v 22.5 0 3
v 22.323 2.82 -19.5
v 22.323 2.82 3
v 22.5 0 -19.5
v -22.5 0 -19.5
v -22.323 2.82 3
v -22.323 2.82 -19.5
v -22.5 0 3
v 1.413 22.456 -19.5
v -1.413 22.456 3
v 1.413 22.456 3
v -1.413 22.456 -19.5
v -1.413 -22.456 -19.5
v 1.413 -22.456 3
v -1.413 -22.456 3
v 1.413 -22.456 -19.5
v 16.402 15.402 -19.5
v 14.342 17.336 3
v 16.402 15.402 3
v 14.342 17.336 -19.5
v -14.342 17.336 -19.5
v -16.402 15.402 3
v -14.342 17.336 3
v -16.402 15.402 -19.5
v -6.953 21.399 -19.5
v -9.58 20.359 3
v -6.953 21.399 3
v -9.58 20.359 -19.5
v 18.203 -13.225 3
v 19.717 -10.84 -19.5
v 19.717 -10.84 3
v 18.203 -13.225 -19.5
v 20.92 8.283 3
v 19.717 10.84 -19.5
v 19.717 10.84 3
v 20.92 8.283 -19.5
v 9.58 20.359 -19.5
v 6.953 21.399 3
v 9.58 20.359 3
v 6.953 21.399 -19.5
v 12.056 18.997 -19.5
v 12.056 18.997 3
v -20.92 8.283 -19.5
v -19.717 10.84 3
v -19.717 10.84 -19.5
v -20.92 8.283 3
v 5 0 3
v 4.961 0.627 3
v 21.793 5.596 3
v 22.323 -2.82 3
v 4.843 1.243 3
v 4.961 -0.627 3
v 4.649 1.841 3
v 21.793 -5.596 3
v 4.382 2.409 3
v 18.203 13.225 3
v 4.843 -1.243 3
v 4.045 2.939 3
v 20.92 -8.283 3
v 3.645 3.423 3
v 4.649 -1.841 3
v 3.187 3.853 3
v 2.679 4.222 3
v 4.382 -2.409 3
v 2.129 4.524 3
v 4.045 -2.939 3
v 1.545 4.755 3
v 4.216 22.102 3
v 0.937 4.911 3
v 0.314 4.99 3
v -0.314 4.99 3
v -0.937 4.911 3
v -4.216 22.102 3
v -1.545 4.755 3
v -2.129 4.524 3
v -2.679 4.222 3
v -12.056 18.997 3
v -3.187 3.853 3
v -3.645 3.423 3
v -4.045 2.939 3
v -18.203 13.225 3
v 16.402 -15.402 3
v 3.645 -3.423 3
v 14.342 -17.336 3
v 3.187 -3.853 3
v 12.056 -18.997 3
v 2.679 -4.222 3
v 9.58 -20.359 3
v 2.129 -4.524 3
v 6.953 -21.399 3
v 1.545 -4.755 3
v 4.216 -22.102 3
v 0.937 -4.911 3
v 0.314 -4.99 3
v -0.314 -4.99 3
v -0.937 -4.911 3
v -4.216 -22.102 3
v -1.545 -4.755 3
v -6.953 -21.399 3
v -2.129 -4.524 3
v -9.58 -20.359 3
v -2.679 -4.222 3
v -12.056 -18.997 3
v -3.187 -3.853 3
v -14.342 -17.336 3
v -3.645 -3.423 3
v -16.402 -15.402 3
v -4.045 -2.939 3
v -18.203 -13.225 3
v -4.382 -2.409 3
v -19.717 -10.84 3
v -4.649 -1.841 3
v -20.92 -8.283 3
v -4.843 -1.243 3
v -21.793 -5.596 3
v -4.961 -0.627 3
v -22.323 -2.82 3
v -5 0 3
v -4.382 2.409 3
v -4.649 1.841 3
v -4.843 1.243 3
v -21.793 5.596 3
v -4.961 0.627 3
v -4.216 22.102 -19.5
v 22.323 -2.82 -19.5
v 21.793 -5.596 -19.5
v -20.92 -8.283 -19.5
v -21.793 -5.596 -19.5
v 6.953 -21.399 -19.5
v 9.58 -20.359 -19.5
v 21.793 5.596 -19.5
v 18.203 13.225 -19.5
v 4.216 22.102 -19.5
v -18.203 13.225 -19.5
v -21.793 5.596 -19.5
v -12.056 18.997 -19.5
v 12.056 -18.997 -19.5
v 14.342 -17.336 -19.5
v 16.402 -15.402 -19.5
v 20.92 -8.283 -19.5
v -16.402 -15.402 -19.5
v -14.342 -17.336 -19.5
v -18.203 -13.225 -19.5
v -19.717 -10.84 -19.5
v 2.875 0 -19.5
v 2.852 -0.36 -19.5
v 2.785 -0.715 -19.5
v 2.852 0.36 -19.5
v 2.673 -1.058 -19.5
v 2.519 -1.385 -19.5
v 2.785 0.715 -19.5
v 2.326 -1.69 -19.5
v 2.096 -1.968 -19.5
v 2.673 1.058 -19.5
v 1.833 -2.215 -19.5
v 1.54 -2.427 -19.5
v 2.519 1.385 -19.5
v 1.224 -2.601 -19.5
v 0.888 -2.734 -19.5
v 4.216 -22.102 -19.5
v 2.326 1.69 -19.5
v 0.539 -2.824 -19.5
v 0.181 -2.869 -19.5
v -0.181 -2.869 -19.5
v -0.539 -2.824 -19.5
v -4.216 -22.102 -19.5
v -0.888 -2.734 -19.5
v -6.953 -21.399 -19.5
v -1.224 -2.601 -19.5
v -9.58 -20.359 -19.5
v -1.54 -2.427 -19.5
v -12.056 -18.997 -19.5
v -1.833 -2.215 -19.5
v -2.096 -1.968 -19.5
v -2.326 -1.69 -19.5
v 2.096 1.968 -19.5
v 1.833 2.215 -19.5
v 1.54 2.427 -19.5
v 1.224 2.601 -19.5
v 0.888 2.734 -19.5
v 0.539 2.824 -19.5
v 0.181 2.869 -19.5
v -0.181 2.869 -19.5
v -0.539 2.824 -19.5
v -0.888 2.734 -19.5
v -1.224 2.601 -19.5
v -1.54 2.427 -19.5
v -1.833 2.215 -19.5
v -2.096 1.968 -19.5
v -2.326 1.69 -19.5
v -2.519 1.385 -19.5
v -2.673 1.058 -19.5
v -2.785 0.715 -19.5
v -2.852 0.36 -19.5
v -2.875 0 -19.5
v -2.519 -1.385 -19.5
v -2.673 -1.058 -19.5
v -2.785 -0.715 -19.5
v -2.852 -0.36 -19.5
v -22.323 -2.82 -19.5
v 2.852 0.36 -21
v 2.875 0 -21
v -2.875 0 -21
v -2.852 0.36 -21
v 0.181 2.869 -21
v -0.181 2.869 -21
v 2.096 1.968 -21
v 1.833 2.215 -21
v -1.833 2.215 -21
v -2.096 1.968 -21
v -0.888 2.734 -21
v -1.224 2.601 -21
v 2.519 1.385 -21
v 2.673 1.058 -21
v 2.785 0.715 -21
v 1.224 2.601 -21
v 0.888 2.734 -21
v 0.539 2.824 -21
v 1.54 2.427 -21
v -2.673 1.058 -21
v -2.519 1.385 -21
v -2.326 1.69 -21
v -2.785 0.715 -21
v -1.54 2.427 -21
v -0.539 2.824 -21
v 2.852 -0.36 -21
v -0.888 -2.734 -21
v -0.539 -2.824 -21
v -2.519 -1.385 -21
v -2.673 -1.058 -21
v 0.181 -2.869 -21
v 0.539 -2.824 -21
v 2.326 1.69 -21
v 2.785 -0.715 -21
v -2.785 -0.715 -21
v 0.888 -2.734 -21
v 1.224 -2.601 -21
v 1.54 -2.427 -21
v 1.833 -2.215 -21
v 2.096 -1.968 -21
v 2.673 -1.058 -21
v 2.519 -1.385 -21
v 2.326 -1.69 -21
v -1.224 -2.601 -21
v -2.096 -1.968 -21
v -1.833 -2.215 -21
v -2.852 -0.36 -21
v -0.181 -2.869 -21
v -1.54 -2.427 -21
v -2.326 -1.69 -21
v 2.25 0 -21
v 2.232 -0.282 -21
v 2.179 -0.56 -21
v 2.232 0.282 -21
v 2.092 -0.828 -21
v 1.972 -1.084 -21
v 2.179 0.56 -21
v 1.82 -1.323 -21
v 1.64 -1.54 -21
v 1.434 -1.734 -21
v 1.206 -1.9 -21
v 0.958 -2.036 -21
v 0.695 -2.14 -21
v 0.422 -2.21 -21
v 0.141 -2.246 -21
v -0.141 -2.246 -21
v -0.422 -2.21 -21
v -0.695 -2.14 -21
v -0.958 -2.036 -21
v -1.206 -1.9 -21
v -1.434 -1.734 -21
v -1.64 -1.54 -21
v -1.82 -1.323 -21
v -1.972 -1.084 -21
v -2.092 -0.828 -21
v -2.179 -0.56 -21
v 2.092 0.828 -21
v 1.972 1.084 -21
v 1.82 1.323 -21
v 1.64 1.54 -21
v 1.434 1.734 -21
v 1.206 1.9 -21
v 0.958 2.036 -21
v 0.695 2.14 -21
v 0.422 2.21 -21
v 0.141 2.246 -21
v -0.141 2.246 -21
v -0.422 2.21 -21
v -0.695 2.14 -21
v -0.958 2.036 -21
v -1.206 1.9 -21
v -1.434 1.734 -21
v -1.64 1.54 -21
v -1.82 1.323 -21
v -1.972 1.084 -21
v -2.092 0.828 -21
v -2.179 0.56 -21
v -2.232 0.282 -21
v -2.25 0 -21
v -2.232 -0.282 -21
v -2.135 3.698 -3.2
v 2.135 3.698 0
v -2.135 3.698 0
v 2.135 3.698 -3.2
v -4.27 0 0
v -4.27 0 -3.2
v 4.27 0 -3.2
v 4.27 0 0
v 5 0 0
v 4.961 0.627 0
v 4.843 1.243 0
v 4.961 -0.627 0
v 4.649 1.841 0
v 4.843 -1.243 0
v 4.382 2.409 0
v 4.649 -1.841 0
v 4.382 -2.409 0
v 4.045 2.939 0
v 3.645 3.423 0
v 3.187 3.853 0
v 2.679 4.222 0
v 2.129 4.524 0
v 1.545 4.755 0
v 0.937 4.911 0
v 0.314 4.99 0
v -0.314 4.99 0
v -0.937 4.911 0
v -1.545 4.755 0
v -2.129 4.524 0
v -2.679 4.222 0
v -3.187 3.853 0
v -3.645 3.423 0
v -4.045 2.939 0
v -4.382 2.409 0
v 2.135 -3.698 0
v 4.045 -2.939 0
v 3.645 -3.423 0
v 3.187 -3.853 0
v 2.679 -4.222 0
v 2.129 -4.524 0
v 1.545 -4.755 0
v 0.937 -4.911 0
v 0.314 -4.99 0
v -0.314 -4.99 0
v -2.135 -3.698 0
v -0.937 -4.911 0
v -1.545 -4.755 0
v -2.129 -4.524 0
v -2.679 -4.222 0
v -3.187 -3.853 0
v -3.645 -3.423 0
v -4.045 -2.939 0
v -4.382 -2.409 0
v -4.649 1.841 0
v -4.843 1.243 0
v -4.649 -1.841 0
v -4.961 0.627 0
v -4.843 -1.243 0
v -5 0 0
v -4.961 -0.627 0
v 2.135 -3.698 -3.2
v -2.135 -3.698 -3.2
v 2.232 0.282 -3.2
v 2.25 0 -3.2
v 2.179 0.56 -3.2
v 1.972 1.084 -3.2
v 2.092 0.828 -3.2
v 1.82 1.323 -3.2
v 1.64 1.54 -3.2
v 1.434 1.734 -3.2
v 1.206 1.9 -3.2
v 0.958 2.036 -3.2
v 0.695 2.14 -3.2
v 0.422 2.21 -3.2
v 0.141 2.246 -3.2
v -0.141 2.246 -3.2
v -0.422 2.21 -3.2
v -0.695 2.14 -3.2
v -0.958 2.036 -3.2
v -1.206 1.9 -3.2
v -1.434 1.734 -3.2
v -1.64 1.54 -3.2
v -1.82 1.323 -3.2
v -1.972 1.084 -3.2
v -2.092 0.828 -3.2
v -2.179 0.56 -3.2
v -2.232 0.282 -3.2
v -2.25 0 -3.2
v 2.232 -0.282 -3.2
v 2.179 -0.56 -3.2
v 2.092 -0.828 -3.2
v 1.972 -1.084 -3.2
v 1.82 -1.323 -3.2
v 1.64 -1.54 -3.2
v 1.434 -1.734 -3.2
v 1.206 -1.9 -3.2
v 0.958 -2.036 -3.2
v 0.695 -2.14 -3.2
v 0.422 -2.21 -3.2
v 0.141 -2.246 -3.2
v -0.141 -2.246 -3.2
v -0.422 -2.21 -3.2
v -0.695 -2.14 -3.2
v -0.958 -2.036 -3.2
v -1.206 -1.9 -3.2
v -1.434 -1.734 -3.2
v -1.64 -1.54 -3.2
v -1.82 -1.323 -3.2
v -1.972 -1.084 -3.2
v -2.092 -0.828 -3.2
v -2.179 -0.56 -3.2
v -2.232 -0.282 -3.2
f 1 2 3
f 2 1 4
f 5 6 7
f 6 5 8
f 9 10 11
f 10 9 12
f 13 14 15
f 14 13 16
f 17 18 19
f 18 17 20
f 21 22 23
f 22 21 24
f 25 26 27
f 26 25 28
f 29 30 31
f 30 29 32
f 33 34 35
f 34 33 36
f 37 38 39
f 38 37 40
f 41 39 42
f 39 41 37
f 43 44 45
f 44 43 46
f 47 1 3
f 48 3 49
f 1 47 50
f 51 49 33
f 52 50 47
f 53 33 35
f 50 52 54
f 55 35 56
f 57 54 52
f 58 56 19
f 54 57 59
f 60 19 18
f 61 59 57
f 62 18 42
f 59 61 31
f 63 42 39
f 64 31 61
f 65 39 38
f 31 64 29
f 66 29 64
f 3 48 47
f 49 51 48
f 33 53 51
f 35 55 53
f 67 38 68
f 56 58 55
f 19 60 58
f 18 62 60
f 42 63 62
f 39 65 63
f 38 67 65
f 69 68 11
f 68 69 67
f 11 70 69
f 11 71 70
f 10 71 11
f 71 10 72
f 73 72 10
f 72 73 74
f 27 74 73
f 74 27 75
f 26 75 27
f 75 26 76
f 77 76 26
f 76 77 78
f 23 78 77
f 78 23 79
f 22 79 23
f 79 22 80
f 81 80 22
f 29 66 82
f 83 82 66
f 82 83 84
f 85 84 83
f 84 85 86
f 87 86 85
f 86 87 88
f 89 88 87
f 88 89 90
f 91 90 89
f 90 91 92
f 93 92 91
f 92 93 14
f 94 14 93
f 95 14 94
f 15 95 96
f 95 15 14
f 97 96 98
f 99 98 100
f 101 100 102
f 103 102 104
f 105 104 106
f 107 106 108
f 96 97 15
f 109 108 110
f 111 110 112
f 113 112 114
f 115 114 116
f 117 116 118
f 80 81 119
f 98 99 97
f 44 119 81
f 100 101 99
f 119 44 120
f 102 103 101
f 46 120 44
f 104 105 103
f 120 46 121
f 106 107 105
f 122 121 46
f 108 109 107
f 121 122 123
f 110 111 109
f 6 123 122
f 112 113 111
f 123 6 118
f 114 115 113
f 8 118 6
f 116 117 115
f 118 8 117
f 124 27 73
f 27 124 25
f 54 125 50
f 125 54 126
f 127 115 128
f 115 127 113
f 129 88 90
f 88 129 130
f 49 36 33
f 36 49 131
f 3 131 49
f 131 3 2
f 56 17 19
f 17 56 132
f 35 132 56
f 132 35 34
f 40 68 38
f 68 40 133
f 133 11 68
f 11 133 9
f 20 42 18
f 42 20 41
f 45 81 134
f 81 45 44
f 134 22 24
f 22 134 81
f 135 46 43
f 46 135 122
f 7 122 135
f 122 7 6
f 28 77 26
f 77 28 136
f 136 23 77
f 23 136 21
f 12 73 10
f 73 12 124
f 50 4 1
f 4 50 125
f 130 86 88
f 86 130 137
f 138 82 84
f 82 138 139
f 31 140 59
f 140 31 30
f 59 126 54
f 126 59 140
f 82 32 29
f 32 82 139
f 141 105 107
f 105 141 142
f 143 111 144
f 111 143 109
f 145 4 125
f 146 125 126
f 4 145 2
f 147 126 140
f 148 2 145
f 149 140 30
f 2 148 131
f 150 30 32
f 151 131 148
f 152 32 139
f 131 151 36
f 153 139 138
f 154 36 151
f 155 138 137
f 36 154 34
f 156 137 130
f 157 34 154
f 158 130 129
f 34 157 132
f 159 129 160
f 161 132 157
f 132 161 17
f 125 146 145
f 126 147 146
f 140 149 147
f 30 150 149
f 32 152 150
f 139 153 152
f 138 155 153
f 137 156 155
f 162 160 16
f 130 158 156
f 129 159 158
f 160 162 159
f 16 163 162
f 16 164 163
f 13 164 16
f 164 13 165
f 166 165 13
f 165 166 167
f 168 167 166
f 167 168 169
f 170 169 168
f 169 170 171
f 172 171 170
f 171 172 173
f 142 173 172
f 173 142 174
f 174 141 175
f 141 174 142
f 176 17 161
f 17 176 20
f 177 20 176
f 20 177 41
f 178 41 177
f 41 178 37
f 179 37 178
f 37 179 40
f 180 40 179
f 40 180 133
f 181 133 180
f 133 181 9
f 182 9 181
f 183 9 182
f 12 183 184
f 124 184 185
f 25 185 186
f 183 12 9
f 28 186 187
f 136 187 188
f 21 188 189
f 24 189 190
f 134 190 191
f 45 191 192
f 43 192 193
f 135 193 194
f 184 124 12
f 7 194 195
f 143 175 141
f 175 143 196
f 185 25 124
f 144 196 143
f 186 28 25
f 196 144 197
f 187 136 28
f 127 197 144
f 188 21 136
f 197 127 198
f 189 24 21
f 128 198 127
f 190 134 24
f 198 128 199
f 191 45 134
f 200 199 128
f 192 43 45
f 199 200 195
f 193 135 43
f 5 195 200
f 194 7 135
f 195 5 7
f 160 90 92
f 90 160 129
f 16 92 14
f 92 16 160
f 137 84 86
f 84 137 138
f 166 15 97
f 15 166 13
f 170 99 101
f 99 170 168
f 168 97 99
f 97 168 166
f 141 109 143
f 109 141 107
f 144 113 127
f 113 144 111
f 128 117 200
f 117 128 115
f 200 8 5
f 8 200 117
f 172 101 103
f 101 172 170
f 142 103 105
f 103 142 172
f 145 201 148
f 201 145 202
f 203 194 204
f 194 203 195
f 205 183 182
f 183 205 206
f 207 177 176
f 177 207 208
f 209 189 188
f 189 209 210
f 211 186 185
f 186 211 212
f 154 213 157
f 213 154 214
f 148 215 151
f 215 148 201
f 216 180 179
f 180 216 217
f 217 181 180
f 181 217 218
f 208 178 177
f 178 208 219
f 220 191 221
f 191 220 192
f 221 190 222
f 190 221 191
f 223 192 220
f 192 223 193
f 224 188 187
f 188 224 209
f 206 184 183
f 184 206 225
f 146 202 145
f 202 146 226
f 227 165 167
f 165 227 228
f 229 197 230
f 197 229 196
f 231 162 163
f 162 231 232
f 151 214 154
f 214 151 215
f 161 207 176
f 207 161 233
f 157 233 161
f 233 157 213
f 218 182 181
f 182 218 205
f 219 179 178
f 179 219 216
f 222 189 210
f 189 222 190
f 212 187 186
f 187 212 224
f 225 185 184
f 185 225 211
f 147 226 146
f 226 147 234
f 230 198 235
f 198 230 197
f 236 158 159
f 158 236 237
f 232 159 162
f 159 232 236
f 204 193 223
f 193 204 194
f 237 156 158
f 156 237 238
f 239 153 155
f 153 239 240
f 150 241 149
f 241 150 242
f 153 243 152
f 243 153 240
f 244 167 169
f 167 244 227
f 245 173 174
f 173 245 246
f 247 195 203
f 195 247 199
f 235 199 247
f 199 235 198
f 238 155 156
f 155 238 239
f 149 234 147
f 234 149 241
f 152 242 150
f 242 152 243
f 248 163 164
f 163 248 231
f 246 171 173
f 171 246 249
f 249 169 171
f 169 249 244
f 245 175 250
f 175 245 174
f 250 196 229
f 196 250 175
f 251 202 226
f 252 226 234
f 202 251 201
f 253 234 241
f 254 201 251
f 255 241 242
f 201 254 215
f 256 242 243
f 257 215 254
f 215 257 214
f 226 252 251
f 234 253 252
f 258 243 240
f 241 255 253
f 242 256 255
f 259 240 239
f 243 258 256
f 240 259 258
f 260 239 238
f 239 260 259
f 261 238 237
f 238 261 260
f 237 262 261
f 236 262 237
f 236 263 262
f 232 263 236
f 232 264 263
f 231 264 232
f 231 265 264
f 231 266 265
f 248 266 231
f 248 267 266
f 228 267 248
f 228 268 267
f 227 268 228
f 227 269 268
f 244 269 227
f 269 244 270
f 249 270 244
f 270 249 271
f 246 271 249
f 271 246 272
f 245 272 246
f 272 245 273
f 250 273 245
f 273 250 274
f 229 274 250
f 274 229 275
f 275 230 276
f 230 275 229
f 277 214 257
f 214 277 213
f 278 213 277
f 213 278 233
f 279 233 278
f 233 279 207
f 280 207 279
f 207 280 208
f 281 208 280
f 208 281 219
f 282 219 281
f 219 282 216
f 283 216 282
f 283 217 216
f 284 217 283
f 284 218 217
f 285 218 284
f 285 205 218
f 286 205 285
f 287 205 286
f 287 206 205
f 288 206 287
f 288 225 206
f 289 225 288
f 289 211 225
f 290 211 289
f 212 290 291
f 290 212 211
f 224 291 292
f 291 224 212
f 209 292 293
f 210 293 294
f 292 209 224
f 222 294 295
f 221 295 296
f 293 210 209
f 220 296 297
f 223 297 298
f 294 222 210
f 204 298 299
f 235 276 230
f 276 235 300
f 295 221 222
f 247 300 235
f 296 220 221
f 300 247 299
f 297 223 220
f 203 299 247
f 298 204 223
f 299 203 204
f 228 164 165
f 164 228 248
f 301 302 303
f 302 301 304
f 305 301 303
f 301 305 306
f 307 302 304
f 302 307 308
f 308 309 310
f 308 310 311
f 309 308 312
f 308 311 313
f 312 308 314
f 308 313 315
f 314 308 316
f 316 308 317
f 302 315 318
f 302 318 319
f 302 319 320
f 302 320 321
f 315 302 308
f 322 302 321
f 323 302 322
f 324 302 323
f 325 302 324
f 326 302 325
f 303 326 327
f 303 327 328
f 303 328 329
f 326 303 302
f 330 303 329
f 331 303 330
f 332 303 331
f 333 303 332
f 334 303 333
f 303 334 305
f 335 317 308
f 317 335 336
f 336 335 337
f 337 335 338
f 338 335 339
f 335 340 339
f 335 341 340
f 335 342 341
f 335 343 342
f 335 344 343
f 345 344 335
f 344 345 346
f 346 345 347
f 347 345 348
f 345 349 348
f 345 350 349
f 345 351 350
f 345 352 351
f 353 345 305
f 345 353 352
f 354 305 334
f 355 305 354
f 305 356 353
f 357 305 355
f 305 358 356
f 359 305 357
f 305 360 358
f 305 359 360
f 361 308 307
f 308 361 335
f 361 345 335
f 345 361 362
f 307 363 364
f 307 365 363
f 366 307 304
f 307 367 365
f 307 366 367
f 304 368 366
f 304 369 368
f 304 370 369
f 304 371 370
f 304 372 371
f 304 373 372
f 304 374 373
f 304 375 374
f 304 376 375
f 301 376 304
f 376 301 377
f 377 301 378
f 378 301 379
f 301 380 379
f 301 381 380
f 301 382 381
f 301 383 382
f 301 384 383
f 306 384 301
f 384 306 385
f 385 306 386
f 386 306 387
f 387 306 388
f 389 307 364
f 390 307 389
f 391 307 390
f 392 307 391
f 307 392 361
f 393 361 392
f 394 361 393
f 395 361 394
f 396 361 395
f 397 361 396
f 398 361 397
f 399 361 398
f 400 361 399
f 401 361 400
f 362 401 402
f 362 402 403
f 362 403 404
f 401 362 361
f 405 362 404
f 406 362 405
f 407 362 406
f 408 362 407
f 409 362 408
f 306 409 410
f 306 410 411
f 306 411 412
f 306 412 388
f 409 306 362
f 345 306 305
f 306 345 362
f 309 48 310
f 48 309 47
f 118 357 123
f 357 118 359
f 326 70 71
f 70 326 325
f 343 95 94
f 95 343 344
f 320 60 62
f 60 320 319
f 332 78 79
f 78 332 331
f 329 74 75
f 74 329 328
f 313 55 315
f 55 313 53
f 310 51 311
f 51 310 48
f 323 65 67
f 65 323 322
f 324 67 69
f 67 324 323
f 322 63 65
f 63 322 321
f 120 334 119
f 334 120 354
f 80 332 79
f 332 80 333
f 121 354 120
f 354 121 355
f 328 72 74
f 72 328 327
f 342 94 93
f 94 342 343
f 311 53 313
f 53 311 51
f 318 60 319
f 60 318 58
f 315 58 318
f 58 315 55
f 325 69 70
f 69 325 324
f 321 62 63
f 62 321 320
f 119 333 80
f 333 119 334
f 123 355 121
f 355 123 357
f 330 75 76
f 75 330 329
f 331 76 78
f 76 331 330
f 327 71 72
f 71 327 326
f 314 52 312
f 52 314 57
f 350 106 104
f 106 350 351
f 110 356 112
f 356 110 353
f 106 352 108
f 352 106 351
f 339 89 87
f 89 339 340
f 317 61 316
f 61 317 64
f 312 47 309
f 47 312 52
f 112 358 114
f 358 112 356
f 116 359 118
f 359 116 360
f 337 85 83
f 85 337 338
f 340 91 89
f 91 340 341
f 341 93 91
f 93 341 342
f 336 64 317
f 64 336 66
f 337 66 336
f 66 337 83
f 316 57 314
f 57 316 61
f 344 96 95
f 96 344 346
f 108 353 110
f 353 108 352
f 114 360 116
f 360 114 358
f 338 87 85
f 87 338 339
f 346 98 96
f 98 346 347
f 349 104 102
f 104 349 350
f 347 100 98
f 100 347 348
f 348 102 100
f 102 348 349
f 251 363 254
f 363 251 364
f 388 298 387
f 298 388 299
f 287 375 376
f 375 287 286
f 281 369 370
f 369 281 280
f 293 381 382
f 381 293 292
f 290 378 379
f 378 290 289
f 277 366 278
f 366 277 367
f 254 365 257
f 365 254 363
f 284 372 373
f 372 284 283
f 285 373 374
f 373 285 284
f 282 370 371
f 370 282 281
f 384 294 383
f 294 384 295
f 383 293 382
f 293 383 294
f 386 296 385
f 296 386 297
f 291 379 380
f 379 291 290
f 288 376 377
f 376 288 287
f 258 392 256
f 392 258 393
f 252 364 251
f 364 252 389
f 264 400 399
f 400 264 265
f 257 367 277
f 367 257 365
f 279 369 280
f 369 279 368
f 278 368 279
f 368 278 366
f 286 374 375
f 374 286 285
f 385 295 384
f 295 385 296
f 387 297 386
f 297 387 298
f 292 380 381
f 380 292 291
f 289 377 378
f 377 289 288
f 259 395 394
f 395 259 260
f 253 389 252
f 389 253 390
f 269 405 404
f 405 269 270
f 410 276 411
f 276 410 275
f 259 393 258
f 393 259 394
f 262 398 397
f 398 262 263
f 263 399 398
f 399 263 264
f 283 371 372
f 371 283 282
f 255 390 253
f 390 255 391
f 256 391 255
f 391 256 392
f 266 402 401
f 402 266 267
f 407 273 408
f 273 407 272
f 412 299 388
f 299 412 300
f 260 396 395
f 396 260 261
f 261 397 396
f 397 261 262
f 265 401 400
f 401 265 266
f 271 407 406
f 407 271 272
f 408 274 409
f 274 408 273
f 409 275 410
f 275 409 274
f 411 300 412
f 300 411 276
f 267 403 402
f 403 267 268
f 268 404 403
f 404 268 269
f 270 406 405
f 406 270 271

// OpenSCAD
$fn = 50;

difference() {
	union() {
		translate(v = [0, 0, -19.5]) {
			cylinder(h = 22.5, r = 22.5);
		}
		#translate(v = [0, 0, -21.0]) {
			cylinder(h = 21, r = 2.875);
		}
	}
	union() {
		translate(v = [0, 0, 0]) {
			rotate(a = [0, 0, 0]) {
				difference() {
					union() {
						translate(v = [0, 0, -3.2]) {
							linear_extrude(height = 3.2) {
								polygon(points = [[4.2698, 0.0], [2.1349000000000005, 3.697755269078796], [-2.134899999999999, 3.6977552690787965], [-4.2698, 5.228996902999369e-16], [-2.134900000000002, -3.6977552690787956], [2.1348999999999974, -3.697755269078798]]);
							}
						}
					}
					union();
				}
			}
		}
		#cylinder(h = 3, r = 5.0);
		#translate(v = [0, 0, -100.0]) {
			cylinder(h = 200, r = 2.25);
		}
	}
}
